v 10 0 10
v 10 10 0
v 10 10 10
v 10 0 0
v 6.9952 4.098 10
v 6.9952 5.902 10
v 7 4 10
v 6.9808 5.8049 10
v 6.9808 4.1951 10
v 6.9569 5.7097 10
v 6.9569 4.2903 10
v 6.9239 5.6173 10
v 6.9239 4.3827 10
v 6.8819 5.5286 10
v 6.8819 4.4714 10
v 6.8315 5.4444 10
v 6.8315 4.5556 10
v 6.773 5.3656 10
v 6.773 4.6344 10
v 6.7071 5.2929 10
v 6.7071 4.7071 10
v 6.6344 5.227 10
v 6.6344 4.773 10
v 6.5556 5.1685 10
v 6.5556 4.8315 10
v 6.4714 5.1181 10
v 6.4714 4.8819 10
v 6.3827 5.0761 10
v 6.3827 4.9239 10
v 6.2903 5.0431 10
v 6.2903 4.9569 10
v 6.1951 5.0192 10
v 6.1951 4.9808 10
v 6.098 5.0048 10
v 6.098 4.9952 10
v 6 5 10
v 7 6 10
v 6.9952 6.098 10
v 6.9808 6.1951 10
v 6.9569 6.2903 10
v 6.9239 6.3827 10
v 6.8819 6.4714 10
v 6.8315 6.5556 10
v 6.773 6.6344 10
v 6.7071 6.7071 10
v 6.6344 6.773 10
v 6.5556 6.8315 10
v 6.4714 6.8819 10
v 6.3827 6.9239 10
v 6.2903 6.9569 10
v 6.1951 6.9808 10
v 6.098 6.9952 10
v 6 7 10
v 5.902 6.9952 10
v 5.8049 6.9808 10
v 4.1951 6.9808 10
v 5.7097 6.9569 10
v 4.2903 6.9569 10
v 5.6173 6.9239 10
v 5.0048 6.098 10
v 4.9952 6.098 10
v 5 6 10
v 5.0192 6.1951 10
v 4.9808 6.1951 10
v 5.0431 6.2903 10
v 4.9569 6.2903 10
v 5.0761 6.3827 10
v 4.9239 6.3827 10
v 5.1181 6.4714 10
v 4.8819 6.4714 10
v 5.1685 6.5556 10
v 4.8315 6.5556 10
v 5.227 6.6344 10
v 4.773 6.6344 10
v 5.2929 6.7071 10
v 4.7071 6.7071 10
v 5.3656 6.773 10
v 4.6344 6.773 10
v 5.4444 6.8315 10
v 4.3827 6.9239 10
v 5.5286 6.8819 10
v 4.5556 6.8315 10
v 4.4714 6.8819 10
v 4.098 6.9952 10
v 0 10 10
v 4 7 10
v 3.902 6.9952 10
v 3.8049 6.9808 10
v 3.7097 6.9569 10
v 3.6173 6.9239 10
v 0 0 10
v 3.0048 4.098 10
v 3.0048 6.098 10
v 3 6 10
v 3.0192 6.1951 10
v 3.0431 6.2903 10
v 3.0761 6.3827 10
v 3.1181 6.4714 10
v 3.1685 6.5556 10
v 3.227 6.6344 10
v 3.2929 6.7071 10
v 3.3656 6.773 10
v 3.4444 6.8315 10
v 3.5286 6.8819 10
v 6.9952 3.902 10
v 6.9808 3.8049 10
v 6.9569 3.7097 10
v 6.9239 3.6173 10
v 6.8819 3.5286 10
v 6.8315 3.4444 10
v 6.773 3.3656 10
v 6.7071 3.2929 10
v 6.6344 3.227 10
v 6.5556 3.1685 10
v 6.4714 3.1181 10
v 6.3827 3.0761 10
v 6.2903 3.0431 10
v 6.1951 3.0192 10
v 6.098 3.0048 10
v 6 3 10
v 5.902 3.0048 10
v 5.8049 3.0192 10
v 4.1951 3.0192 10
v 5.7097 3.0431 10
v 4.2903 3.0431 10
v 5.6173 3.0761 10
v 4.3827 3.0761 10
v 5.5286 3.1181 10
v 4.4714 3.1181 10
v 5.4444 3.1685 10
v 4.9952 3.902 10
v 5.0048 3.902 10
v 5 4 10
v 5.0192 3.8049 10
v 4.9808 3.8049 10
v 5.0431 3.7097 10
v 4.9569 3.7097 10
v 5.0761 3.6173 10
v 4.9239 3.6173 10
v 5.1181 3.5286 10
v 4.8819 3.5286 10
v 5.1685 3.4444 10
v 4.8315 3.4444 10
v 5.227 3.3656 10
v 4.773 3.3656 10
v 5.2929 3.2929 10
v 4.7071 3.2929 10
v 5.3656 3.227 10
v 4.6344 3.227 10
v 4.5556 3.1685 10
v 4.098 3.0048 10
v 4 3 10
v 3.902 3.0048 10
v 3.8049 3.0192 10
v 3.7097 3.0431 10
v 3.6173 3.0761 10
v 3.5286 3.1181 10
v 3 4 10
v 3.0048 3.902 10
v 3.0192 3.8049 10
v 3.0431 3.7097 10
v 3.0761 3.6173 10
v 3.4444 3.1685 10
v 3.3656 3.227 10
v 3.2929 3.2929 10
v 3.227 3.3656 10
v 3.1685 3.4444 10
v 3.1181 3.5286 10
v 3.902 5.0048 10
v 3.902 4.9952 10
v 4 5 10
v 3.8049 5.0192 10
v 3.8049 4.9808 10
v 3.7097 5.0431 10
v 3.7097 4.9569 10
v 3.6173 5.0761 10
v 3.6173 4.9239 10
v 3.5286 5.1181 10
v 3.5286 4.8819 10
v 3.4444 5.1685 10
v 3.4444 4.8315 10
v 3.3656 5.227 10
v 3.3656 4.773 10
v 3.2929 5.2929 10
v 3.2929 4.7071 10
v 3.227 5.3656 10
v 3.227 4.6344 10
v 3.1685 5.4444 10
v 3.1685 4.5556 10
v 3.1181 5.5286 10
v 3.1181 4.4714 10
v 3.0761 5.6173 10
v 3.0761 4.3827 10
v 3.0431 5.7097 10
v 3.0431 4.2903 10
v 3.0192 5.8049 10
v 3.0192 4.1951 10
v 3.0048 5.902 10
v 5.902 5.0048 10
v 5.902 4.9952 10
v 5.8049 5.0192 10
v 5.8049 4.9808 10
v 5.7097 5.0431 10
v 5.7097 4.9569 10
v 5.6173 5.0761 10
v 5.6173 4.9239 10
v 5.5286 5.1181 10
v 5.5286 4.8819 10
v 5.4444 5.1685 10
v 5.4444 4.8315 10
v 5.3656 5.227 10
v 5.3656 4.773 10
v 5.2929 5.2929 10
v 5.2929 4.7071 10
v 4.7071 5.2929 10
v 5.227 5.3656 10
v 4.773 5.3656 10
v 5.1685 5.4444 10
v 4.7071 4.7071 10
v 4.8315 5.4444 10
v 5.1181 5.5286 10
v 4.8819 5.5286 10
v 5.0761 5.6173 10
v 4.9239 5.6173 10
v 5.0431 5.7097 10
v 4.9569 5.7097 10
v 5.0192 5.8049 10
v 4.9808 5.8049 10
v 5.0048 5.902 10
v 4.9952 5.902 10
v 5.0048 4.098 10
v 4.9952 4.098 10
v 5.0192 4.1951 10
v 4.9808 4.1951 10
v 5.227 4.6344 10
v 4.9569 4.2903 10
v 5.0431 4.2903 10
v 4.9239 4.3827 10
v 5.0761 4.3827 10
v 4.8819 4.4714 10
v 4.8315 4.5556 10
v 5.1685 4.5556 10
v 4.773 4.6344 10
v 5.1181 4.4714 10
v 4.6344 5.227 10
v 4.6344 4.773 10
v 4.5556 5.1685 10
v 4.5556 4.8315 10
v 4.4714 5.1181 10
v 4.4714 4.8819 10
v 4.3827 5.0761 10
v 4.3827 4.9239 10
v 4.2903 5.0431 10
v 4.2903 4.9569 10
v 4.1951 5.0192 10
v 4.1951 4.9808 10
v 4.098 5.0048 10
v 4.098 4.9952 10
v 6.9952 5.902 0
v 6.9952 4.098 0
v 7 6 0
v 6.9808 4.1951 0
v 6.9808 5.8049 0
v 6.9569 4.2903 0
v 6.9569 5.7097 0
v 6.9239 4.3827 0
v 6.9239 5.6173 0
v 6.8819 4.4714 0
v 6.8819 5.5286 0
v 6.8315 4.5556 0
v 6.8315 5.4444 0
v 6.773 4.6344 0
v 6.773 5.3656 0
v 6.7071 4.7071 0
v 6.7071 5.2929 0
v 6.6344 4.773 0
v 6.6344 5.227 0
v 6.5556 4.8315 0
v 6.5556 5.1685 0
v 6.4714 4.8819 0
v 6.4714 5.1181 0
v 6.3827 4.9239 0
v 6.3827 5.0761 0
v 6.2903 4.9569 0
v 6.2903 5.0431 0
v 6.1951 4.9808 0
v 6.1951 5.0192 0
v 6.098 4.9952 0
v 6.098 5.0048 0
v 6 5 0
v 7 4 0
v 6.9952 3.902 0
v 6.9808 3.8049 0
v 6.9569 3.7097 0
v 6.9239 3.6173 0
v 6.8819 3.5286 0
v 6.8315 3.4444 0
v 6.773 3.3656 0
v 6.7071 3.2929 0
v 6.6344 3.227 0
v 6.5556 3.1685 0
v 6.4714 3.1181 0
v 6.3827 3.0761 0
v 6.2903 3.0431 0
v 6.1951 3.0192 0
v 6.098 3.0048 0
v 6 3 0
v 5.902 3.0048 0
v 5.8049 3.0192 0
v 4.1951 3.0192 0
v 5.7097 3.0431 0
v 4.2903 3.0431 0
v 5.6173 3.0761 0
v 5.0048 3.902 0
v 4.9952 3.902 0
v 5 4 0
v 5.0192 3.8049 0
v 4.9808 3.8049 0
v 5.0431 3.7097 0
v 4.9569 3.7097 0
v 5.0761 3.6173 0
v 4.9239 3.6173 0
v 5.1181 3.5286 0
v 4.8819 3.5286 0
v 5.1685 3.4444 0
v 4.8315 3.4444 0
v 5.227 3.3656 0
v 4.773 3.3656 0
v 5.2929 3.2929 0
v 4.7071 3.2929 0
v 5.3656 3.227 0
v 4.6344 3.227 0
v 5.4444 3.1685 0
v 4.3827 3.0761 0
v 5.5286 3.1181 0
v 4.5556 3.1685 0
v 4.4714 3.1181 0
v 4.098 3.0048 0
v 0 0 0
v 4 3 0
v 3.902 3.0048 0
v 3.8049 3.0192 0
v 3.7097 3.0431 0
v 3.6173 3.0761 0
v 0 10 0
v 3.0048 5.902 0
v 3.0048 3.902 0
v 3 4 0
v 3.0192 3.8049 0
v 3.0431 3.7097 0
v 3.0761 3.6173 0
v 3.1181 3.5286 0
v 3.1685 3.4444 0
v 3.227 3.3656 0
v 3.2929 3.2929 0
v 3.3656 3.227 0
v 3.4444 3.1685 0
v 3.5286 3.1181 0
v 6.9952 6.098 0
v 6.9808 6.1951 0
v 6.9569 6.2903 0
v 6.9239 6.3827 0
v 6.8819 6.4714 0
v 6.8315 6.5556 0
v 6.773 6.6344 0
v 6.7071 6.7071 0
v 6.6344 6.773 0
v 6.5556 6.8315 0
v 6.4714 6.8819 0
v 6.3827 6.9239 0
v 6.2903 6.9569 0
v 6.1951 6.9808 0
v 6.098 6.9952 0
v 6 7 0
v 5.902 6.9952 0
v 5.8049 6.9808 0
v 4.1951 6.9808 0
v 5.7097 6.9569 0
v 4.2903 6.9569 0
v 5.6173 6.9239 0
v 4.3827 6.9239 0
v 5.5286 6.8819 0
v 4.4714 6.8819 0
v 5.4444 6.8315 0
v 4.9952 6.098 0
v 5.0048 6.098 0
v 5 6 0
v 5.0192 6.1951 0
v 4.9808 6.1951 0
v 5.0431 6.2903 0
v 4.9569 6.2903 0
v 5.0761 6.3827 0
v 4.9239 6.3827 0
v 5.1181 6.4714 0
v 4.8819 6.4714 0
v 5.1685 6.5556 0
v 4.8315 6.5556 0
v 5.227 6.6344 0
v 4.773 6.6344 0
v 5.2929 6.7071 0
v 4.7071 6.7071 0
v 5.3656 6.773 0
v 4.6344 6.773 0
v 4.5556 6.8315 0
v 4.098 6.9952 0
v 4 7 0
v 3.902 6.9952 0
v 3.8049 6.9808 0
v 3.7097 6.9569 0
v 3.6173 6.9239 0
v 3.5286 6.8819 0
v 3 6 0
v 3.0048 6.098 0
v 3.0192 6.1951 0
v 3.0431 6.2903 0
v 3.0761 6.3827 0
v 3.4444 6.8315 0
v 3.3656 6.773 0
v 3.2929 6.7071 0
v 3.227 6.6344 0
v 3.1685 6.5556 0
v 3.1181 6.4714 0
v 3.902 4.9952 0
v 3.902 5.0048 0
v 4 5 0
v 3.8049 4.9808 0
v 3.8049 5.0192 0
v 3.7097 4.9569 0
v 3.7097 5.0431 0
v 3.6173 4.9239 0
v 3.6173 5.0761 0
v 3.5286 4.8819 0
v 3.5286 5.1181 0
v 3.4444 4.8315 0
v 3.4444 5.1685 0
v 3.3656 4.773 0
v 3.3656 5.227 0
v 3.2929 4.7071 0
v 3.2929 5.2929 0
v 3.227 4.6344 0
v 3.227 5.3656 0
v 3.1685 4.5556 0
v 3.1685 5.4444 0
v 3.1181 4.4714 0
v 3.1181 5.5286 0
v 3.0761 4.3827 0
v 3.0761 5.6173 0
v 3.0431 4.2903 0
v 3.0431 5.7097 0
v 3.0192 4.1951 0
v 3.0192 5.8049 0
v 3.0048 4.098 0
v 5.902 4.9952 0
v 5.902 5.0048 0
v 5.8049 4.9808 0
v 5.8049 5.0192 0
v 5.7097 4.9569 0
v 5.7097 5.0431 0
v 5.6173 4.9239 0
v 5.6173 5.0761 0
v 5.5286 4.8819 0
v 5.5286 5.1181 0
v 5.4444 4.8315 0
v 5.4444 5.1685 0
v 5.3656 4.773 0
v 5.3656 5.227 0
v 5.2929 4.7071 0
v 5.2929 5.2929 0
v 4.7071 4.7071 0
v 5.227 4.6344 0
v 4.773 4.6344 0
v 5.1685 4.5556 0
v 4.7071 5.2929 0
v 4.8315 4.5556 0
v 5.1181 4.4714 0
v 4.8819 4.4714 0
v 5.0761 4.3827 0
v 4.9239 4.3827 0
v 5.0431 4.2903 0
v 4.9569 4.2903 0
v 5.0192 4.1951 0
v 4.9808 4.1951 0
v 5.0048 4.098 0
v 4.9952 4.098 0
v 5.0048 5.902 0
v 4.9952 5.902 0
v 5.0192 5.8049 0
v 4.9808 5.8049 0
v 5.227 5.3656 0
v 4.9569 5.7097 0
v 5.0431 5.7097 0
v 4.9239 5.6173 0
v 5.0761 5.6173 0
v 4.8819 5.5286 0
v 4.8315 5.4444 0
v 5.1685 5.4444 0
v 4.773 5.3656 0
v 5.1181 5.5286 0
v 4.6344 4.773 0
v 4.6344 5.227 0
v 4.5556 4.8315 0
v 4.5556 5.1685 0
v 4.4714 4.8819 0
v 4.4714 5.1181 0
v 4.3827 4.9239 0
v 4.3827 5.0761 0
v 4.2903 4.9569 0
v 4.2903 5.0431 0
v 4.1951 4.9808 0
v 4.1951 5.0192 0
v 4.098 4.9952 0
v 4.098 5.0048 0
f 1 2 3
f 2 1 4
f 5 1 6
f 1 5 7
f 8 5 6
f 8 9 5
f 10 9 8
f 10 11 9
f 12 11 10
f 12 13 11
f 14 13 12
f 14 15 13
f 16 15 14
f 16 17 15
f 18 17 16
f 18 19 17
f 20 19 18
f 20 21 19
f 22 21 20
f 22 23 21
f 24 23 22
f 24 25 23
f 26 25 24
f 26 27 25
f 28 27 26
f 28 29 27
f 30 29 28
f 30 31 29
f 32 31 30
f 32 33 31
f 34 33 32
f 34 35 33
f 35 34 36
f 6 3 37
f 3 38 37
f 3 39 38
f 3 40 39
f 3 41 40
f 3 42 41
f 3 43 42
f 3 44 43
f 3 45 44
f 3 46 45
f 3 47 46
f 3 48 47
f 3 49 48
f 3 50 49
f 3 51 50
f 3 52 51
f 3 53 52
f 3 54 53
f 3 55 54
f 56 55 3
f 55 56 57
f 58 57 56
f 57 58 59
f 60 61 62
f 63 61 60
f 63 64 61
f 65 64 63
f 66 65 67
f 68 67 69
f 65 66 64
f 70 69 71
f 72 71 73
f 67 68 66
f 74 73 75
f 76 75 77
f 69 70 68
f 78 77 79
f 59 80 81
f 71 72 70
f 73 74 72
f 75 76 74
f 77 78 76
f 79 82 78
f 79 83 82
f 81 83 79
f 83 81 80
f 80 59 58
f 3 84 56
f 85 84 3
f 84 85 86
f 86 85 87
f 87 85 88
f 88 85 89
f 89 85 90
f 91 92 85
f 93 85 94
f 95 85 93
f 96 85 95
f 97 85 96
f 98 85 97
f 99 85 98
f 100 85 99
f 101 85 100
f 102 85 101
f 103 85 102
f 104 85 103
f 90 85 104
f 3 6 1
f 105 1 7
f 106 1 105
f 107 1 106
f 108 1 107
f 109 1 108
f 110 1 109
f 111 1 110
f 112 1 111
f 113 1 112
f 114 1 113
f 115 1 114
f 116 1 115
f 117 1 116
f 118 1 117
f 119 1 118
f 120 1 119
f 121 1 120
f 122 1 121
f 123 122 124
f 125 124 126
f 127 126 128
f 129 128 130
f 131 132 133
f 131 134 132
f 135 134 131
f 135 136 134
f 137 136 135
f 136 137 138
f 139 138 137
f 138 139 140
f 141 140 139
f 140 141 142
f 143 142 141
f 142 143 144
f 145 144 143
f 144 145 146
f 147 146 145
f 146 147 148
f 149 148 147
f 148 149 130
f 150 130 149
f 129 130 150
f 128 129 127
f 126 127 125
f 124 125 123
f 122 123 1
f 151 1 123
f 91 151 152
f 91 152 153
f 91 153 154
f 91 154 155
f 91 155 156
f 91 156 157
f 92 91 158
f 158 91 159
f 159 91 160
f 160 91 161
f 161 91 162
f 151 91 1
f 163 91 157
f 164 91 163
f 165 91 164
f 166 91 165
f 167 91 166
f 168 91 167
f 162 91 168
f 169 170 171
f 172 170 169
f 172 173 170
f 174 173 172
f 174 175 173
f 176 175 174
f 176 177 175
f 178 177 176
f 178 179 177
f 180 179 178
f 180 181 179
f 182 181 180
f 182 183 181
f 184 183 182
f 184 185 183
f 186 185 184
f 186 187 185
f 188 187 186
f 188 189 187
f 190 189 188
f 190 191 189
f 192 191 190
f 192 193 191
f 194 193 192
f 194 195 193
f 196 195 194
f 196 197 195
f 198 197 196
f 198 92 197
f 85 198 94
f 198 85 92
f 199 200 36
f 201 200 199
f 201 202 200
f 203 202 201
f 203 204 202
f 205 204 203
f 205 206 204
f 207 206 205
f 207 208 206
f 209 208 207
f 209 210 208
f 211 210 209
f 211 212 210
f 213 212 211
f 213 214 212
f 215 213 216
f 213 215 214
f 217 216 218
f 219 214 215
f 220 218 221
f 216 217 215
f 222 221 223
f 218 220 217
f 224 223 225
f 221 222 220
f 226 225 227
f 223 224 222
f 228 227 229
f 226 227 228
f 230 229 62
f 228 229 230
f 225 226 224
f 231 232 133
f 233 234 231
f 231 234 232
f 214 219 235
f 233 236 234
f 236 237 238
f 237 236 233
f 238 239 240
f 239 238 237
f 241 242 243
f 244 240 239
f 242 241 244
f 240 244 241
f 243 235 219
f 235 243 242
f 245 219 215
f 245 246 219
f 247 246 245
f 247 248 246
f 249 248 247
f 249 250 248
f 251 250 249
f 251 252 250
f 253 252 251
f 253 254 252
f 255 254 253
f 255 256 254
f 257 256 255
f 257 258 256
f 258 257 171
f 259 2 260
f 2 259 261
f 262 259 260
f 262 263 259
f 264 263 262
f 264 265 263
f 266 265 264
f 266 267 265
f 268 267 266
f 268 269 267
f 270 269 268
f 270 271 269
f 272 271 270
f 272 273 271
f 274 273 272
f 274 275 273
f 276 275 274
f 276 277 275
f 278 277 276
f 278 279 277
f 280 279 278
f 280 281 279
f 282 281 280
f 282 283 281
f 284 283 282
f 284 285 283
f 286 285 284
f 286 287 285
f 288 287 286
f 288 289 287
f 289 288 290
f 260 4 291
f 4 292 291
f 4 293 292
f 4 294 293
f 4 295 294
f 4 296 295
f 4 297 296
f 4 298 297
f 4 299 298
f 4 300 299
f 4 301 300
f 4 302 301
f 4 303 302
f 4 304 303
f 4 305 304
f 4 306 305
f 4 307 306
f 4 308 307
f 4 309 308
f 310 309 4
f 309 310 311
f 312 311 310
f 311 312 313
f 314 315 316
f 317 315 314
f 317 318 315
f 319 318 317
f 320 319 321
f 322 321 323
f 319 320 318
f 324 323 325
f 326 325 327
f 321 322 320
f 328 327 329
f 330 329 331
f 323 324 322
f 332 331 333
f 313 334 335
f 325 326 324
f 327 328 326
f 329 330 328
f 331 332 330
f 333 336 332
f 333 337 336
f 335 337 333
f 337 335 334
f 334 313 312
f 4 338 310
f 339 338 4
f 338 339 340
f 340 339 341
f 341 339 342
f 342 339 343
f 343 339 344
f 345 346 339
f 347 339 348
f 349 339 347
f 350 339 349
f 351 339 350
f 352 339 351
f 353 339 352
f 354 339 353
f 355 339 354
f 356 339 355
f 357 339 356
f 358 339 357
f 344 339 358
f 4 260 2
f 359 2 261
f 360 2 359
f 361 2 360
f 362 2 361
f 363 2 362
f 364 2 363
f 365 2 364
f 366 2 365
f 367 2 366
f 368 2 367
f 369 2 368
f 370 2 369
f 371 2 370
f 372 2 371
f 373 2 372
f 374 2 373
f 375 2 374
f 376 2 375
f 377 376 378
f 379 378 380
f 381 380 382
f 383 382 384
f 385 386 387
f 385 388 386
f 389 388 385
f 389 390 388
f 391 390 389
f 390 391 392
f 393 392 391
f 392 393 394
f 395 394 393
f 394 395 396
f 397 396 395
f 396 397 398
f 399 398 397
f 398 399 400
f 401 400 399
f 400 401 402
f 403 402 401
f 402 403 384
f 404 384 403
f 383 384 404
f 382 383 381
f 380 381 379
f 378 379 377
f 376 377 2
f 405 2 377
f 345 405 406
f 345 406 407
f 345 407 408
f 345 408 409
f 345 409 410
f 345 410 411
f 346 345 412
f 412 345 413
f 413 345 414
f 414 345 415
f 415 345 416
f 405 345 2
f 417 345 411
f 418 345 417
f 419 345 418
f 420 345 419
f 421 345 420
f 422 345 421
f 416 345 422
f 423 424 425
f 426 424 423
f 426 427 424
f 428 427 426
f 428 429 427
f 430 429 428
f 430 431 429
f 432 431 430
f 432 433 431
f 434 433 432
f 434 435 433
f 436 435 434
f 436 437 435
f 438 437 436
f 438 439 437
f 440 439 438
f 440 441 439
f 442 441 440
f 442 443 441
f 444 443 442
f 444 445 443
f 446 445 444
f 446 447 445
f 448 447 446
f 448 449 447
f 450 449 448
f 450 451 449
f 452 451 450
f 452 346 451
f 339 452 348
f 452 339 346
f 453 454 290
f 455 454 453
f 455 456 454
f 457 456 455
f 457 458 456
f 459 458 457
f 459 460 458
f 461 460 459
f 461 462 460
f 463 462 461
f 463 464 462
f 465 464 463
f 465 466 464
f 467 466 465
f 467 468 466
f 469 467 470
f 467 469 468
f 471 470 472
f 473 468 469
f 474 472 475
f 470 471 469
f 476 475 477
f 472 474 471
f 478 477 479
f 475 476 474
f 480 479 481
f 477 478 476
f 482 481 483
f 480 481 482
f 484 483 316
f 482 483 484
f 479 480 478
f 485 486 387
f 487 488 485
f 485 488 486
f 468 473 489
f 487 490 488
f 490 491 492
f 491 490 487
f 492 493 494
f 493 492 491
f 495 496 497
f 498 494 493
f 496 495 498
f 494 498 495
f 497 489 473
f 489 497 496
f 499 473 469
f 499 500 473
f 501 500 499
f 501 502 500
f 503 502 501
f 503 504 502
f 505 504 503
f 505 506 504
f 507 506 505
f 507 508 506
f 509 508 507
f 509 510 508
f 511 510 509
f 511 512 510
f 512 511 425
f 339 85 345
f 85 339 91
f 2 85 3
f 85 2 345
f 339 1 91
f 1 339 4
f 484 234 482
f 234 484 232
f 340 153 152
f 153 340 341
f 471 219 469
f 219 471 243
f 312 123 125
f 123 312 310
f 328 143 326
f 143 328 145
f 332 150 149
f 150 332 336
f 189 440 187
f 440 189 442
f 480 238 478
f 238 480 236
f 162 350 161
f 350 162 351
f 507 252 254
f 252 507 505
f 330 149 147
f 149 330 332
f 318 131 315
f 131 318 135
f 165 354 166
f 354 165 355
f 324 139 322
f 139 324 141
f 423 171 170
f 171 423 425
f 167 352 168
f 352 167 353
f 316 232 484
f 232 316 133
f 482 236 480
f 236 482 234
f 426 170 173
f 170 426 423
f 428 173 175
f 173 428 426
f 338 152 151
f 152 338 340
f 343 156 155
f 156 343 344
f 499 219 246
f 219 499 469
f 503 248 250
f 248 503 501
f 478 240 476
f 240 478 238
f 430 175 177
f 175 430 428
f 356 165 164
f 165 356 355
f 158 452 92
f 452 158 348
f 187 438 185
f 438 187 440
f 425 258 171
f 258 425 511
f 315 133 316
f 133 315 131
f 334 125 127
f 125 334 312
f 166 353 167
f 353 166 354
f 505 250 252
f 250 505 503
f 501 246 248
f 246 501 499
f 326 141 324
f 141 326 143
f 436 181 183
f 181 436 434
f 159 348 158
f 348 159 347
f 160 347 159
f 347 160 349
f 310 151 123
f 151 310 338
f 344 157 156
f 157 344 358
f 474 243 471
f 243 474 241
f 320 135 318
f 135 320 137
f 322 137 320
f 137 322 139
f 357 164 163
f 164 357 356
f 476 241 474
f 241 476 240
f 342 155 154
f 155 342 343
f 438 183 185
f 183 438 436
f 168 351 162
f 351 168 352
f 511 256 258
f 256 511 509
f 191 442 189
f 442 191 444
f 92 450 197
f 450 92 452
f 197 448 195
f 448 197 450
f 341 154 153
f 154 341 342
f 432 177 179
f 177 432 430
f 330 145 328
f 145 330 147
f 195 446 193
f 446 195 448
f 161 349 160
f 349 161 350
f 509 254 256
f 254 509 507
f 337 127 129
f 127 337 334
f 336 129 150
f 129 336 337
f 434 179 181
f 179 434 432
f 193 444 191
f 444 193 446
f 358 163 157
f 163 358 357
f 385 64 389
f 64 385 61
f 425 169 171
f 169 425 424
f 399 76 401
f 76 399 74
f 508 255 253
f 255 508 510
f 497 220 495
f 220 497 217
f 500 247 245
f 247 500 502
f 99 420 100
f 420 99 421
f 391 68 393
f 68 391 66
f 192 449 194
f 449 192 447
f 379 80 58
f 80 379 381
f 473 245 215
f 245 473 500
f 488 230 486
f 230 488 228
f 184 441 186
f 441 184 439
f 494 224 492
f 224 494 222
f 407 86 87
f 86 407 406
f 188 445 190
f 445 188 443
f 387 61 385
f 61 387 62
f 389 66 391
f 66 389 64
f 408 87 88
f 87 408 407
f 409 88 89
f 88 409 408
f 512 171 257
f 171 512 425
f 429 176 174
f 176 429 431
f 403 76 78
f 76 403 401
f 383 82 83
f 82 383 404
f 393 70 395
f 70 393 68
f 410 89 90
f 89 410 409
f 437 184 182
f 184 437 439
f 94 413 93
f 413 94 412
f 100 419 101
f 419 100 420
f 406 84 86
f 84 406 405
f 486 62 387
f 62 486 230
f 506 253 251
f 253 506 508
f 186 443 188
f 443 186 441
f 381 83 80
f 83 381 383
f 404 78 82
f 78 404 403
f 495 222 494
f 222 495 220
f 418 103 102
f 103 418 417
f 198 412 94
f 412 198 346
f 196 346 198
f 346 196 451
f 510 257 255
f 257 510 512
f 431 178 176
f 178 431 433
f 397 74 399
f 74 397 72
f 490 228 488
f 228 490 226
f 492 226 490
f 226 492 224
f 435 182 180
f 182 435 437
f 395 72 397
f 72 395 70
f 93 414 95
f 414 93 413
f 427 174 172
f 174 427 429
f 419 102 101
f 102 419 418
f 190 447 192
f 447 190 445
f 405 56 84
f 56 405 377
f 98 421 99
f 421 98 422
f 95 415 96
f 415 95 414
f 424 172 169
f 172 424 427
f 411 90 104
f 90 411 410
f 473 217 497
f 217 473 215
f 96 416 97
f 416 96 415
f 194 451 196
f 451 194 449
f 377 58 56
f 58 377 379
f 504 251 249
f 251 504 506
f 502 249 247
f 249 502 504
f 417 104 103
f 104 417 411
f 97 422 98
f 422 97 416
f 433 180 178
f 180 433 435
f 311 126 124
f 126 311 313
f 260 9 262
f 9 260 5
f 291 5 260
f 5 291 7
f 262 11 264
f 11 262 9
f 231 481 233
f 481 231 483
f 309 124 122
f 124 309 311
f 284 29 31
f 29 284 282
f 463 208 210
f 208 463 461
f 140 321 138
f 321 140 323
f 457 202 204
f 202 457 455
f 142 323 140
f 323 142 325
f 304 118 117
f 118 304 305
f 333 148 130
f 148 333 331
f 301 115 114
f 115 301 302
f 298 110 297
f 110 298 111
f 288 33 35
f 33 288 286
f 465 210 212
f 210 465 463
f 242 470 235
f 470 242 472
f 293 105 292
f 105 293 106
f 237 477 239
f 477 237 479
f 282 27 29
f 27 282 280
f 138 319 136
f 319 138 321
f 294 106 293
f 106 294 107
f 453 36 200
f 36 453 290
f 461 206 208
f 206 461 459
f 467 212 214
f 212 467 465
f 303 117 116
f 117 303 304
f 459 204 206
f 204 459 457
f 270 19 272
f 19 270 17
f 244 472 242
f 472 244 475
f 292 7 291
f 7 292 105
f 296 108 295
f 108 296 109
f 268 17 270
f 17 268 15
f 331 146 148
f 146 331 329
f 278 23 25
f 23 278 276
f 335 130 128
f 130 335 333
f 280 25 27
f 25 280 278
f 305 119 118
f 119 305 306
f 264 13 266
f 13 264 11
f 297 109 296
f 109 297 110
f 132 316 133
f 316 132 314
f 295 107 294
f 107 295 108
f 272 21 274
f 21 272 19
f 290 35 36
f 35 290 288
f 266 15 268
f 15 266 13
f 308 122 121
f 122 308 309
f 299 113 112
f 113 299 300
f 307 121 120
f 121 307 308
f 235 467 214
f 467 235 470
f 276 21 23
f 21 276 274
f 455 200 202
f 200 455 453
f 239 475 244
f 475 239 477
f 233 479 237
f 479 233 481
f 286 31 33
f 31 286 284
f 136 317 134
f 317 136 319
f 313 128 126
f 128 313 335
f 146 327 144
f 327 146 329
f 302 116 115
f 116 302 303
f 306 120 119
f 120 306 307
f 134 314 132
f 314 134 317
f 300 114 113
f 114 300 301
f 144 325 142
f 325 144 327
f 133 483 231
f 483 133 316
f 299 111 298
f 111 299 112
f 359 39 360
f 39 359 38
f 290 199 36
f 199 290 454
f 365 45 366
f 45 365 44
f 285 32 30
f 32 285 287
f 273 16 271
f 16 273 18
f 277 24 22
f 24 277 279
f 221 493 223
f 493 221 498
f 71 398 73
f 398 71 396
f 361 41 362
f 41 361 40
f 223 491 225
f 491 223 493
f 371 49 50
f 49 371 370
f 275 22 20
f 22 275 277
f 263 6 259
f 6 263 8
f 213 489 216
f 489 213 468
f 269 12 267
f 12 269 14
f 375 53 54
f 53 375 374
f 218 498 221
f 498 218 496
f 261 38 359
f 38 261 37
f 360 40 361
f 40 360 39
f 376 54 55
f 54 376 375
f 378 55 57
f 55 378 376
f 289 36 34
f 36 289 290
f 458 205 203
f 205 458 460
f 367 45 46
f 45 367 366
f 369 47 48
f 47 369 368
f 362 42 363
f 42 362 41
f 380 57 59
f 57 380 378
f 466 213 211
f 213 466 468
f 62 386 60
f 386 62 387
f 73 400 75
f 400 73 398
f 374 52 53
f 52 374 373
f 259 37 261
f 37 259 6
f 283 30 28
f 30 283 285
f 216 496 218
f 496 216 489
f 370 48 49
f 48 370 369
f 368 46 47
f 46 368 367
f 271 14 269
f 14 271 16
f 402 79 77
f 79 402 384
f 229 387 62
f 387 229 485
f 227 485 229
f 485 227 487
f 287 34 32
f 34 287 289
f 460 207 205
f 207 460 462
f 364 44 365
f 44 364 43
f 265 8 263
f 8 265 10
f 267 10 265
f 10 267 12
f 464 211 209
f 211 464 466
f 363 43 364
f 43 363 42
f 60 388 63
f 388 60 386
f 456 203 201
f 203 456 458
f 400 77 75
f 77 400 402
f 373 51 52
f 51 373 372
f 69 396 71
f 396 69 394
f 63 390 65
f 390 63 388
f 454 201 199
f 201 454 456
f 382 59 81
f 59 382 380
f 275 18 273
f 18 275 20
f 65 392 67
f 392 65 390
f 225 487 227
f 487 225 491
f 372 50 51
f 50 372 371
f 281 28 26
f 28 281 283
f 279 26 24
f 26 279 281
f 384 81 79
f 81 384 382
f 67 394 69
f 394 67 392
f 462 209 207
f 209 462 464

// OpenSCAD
difference(){difference(){difference(){difference(){translate([0, 0, 0])cube([10, 10,10]);translate([4, 4, 0.0])rotate([0, 0, 0])cylinder(r=1.0, h=12, $fn=64);translate([4, 6, 0.0])rotate([0, 0, 0])cylinder(r=1.0, h=12, $fn=64);translate([6, 4, 0.0])rotate([0, 0, 0])cylinder(r=1.0, h=12, $fn=64);translate([6, 6, 0.0])rotate([0, 0, 0])cylinder(r=1.0, h=12, $fn=64);}}}}
